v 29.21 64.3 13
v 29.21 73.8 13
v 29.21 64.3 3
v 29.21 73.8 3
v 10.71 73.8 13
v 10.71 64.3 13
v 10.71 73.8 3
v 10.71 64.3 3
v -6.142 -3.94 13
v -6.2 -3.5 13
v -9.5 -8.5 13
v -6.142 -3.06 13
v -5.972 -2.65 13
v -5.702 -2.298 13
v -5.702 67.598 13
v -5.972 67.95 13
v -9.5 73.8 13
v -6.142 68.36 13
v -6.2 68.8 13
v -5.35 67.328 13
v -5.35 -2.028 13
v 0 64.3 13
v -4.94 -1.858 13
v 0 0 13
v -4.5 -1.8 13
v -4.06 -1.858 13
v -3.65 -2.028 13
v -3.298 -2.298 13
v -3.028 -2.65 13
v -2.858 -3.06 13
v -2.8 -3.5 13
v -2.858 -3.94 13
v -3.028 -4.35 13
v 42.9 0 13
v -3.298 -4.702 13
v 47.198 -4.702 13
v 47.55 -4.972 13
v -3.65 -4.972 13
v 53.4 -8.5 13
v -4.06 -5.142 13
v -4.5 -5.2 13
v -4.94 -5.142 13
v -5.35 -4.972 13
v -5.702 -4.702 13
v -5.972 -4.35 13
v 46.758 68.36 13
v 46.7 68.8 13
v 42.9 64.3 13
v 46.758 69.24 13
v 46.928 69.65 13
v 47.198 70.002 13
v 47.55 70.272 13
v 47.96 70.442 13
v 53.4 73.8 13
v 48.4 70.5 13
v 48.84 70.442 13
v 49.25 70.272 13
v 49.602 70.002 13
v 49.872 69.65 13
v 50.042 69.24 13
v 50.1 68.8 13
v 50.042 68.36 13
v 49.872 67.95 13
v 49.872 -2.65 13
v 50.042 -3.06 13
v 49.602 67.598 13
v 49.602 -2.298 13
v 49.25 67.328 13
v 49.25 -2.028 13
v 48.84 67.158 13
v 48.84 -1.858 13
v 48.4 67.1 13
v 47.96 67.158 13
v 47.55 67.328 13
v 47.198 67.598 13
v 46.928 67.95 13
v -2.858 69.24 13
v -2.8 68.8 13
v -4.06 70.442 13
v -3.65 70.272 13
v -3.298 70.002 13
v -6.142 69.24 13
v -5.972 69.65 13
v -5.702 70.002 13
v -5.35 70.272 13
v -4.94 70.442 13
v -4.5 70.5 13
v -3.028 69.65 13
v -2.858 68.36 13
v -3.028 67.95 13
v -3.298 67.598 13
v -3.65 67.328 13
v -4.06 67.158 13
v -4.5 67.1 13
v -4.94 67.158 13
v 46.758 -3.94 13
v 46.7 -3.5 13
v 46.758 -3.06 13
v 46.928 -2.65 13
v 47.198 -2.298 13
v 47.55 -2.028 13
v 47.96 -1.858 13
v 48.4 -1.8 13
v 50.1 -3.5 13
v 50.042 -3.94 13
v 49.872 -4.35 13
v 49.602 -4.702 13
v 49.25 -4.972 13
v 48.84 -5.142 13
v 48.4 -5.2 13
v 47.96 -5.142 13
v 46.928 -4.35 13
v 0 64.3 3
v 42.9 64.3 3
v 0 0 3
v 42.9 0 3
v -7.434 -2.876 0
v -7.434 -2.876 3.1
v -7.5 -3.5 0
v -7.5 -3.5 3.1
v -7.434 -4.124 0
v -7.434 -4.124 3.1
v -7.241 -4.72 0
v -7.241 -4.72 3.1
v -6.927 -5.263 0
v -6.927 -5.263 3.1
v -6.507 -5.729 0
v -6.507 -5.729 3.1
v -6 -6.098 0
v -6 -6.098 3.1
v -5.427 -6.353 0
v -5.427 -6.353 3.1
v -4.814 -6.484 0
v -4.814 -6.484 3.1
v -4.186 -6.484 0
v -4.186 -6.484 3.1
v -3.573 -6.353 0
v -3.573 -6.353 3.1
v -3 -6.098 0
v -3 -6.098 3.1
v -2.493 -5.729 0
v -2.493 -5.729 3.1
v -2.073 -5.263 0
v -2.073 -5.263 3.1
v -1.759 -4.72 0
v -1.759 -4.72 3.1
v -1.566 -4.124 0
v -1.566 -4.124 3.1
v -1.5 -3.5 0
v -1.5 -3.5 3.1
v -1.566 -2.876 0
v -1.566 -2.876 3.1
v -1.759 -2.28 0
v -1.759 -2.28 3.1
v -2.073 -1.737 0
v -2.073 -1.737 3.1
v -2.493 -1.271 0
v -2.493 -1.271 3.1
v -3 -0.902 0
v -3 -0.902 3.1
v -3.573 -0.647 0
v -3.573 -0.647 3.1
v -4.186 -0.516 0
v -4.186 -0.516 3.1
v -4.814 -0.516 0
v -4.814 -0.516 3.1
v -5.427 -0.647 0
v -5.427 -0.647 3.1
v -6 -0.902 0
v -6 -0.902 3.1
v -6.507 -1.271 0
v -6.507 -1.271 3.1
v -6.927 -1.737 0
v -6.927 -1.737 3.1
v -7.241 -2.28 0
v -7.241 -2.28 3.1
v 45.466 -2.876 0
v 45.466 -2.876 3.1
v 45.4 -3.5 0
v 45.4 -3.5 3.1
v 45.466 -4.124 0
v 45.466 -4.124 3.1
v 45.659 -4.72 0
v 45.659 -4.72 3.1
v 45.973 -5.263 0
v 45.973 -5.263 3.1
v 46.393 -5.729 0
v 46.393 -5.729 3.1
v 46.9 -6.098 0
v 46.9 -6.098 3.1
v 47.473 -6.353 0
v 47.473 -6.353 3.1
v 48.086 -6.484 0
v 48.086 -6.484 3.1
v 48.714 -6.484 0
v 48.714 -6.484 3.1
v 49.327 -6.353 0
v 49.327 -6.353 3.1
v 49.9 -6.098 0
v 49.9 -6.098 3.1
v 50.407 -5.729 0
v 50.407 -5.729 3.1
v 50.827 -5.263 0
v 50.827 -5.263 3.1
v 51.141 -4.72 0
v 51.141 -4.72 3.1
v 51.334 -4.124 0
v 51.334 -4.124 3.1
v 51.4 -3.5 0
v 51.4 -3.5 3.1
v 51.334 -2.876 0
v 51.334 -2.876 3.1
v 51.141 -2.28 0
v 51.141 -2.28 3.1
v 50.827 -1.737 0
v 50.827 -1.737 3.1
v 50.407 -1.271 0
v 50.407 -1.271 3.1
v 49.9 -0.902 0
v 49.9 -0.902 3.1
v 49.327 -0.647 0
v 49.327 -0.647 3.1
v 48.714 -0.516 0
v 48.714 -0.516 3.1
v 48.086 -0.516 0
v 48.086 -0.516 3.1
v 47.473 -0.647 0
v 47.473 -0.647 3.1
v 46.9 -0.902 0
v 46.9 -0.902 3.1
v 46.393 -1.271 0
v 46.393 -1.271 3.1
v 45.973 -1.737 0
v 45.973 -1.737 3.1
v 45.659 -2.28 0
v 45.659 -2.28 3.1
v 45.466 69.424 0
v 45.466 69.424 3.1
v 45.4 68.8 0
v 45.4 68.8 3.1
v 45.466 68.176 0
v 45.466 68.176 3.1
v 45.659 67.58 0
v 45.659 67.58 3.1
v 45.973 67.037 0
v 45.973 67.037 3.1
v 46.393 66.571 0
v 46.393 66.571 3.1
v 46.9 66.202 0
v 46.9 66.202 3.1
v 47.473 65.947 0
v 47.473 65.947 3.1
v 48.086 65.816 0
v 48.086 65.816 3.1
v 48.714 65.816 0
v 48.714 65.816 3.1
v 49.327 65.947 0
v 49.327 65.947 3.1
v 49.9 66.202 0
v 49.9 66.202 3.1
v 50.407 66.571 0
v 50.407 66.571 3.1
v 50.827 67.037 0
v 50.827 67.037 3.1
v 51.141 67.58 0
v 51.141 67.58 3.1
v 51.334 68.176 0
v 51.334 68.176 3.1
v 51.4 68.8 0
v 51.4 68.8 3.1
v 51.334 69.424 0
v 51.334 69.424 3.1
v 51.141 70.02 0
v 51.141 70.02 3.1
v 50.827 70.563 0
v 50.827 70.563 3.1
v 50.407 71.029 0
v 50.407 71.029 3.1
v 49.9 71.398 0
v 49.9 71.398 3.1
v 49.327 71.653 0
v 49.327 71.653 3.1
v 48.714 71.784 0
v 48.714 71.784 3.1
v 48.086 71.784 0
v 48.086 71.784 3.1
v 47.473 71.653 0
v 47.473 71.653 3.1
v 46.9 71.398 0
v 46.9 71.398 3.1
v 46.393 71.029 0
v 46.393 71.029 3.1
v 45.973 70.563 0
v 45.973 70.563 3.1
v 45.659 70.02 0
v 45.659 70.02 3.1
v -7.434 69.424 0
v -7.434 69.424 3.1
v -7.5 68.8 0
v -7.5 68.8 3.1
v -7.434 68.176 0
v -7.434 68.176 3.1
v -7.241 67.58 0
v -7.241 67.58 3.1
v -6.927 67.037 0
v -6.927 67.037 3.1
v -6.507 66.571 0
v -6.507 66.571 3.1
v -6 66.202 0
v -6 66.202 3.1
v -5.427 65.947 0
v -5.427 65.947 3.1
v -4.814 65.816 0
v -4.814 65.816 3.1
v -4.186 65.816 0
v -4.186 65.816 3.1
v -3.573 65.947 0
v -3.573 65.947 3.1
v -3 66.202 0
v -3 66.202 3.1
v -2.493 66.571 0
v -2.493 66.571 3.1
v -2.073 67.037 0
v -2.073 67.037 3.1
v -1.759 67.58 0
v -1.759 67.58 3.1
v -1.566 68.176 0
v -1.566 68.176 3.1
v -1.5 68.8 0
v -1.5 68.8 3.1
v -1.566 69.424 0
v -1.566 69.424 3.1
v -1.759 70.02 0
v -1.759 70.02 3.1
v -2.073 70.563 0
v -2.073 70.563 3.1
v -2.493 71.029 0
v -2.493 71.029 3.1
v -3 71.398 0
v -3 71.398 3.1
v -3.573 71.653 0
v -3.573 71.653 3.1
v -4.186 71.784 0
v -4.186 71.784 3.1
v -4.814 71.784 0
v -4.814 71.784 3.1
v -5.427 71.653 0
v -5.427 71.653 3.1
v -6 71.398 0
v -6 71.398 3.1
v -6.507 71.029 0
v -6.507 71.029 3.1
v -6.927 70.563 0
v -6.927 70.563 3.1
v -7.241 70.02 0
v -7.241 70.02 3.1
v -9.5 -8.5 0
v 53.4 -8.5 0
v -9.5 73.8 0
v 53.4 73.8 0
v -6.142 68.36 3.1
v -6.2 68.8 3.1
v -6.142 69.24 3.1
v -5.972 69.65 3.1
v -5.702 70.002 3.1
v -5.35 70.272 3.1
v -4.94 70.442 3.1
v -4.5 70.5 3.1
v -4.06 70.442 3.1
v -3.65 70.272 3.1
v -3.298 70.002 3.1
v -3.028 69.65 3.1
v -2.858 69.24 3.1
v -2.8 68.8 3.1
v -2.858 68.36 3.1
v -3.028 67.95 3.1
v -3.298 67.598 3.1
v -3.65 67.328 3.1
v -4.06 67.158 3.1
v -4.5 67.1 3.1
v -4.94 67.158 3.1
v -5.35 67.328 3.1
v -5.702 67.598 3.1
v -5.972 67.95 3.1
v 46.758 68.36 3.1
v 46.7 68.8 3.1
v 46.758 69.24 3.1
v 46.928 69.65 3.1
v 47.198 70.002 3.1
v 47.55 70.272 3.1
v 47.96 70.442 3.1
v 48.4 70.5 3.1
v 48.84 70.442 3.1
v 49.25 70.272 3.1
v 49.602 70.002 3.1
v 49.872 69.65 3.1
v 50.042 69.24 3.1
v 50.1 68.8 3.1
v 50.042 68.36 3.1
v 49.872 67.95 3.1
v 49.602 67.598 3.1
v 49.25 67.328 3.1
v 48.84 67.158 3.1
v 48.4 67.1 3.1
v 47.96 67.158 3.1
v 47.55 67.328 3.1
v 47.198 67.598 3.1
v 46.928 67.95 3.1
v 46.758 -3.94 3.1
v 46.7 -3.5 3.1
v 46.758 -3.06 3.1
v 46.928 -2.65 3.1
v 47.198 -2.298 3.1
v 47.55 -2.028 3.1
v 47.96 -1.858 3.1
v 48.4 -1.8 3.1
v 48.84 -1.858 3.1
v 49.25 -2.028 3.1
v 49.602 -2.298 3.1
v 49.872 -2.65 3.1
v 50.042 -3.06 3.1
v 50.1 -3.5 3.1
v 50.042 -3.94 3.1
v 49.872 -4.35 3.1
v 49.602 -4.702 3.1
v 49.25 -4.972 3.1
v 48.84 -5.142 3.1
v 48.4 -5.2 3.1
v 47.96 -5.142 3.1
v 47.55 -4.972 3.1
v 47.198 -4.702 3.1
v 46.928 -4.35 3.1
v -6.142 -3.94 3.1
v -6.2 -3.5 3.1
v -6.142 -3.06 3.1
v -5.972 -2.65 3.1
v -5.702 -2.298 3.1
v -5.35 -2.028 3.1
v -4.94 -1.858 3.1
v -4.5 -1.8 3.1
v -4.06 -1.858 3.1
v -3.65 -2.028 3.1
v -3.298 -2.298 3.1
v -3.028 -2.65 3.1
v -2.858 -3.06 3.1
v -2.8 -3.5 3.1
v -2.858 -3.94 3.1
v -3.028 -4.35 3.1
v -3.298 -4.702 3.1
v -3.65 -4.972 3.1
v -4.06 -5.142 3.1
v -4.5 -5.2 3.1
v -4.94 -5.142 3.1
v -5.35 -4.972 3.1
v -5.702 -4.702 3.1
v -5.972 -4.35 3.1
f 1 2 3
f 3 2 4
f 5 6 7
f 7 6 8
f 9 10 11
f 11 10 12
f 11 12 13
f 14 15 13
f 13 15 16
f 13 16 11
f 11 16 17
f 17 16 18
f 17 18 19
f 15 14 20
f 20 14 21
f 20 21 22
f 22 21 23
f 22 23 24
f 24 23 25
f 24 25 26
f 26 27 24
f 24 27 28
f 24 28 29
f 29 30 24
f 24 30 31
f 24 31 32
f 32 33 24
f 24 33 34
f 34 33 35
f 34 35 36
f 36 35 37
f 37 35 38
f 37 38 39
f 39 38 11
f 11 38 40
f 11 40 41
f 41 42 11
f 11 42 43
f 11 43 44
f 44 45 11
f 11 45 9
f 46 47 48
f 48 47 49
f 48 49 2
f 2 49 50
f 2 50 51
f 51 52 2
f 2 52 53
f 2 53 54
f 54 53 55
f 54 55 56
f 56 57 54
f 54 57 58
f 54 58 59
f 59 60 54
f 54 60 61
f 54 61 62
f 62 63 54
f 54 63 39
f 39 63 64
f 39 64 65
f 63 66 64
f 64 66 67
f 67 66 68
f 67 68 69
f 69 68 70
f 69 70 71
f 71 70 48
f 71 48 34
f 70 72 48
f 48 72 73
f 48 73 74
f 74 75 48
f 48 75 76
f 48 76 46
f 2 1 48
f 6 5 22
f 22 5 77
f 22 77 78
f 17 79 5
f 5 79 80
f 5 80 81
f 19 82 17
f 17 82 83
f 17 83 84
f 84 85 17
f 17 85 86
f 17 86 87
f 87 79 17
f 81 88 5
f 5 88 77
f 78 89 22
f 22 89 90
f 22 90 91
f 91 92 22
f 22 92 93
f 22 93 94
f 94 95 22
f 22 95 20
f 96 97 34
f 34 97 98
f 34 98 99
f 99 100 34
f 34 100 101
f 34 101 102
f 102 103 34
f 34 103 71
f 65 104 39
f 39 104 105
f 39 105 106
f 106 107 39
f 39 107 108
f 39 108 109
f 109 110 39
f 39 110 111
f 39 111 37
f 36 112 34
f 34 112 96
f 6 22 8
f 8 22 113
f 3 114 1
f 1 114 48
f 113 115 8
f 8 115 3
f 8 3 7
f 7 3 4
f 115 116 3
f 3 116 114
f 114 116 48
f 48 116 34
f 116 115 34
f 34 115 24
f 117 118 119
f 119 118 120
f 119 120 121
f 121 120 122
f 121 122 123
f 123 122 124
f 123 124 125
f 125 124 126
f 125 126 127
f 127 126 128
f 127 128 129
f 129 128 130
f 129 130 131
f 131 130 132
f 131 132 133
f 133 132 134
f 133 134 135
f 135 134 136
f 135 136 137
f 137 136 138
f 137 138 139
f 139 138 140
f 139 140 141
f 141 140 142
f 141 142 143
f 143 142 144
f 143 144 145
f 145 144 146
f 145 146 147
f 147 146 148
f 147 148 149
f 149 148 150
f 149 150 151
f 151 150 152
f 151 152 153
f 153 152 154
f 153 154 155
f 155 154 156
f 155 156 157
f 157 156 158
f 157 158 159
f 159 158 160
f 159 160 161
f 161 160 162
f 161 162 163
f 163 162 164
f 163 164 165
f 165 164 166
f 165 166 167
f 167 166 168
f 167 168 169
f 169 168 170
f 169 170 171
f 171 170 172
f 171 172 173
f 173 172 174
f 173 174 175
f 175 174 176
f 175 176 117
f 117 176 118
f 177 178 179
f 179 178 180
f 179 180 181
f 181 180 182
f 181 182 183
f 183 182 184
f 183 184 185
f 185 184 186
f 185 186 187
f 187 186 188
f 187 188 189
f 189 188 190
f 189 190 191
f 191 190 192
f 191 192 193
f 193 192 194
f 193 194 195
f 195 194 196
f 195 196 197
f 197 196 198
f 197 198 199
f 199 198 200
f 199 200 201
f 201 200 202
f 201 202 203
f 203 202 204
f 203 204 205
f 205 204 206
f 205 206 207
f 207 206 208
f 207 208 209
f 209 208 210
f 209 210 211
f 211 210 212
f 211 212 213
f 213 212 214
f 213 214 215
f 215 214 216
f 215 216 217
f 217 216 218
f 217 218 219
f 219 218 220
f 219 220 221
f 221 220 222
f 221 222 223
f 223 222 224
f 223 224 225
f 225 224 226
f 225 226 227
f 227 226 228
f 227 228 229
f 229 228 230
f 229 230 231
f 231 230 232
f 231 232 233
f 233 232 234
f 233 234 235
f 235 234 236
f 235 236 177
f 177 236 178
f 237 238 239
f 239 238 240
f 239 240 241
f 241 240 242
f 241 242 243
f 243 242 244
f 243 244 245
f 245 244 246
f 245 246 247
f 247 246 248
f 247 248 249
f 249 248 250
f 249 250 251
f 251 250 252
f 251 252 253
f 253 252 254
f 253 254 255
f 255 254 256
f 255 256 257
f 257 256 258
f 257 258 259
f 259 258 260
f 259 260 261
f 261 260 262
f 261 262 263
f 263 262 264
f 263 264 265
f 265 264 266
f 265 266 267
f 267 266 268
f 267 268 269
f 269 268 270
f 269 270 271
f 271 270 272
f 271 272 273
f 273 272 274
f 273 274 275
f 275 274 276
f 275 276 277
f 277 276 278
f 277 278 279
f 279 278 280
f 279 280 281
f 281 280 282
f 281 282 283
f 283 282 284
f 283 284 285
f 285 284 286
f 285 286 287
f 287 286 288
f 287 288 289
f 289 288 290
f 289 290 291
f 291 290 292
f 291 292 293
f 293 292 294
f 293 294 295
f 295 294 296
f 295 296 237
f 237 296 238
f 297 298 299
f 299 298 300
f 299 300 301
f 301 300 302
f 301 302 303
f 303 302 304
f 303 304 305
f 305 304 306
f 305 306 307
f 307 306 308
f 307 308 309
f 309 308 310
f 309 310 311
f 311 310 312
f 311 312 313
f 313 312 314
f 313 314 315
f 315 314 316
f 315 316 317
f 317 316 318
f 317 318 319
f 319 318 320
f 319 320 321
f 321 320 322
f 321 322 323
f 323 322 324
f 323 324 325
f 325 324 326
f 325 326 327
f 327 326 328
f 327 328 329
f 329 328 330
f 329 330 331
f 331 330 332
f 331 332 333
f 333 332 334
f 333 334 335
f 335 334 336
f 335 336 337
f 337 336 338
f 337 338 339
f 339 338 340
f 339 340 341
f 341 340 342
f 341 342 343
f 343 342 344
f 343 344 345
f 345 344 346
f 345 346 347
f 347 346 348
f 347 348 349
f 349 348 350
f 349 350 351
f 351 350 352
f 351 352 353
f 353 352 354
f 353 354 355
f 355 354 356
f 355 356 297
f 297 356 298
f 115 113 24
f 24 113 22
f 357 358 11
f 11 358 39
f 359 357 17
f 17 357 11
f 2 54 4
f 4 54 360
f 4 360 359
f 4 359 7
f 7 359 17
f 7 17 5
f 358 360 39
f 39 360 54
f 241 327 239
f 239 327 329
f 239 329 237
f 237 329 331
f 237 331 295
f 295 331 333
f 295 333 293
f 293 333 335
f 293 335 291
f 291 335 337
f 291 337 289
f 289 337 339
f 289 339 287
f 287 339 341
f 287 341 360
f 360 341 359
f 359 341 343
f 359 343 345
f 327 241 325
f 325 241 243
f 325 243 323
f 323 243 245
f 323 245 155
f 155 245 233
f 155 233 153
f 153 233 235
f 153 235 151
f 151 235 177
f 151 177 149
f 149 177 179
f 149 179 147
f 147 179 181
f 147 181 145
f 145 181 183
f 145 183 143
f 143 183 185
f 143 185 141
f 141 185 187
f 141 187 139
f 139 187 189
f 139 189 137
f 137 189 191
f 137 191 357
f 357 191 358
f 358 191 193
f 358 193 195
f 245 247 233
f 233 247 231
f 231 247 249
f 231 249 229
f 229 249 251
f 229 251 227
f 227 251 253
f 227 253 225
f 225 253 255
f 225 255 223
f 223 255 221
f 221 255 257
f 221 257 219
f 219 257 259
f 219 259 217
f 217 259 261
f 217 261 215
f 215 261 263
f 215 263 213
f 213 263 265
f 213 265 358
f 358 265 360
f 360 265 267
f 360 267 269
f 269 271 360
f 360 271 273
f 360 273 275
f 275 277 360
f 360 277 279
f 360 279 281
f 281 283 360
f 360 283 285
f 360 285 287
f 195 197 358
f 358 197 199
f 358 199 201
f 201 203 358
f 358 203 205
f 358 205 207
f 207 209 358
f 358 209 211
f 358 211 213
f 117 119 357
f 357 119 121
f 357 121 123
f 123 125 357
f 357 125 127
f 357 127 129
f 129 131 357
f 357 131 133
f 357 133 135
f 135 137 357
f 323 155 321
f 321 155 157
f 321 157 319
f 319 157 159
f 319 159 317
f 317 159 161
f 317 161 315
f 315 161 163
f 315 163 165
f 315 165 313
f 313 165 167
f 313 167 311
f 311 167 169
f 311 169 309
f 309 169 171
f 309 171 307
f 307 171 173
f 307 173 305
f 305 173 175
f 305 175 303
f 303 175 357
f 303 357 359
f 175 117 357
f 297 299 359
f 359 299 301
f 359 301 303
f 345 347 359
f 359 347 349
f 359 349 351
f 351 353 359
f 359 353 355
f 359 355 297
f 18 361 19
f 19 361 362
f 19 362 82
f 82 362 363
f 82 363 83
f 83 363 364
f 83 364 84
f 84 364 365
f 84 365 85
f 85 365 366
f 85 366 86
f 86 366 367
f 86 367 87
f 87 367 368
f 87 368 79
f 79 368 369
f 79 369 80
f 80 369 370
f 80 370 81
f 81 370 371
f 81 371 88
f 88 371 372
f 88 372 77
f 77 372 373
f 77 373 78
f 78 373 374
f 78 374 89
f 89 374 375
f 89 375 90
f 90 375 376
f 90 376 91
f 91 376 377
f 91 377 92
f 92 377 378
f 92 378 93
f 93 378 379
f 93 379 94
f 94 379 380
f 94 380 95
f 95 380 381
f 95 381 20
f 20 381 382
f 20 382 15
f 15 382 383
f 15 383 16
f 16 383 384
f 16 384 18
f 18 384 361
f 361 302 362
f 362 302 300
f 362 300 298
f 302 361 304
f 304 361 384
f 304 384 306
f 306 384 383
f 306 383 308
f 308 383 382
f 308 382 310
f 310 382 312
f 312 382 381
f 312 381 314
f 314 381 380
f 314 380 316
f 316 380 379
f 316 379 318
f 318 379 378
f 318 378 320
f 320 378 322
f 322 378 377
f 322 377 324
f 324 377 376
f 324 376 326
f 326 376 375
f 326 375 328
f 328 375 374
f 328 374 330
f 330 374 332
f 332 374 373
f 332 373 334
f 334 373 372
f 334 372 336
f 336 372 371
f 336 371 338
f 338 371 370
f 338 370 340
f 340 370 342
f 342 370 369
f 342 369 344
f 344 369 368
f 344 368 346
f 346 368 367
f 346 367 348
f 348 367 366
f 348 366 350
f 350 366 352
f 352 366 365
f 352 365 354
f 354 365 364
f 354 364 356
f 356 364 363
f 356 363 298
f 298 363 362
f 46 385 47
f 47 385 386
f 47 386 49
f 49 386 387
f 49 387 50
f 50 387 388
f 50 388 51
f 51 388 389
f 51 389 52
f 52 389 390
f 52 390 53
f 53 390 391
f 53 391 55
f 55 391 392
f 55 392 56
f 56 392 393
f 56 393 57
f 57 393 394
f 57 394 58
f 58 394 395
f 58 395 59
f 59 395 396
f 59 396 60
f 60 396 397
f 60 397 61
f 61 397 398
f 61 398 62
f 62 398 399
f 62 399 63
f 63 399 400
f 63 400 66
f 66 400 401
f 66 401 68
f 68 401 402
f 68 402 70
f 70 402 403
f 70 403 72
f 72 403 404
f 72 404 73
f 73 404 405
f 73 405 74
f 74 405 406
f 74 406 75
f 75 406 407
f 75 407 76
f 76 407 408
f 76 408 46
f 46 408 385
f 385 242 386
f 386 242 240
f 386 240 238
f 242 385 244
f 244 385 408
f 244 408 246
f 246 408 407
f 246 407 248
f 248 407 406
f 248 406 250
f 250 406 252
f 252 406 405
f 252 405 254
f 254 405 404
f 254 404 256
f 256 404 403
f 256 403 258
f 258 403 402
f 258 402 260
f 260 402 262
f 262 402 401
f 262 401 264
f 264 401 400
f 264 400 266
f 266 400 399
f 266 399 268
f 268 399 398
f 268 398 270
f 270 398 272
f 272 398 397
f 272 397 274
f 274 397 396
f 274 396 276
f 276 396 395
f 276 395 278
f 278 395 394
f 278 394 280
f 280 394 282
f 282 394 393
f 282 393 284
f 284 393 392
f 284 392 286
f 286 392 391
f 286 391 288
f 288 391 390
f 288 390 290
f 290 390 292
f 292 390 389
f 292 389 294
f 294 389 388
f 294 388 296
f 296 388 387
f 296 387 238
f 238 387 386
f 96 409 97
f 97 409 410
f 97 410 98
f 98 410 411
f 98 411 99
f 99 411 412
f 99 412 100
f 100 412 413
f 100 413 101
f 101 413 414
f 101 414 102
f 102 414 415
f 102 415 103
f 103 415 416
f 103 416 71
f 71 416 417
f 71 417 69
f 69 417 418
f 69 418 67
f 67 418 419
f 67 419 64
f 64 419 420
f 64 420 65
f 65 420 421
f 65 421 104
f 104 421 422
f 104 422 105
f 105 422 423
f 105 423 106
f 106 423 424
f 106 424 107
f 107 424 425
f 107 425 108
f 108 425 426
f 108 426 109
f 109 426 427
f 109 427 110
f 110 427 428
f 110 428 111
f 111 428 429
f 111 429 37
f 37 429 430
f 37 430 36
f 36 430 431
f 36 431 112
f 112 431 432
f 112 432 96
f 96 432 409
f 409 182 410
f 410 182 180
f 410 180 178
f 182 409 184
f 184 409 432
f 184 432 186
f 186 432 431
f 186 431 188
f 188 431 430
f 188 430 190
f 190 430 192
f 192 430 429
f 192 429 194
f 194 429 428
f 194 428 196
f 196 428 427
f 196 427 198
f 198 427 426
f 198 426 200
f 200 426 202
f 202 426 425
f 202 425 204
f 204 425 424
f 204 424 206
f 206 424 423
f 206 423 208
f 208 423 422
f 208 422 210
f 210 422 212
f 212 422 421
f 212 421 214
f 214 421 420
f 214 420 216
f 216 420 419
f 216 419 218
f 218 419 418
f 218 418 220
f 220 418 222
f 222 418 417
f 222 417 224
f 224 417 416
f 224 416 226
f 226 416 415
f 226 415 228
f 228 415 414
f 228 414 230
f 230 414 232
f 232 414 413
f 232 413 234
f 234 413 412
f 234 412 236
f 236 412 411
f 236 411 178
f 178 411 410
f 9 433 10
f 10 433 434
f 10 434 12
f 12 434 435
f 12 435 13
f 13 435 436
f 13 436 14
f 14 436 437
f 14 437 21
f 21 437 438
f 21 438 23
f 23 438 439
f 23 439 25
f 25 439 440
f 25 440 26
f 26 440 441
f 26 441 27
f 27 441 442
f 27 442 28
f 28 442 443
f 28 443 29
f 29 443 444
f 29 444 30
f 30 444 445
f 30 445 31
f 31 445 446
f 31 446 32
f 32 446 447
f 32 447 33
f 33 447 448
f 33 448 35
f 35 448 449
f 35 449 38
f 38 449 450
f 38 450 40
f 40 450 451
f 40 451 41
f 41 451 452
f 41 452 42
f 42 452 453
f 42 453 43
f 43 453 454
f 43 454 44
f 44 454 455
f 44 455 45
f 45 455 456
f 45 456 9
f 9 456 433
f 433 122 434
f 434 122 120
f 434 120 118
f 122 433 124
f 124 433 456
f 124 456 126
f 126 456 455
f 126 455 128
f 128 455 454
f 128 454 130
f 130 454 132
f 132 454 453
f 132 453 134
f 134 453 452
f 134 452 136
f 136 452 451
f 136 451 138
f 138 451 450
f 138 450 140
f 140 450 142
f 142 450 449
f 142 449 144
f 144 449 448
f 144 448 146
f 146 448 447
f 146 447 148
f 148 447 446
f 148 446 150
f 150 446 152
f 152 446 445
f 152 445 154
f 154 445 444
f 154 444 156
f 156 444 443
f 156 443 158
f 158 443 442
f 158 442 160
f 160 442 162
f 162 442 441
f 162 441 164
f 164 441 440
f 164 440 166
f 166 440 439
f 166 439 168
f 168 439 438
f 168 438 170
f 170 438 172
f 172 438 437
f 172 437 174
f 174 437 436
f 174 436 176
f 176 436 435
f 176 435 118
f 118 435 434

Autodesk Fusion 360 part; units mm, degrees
sketch "Sketch1" plane through (0, 0, 0) normal (0, 0, 1) x (1, 0, 0) in component "Case"
  line L0 (0, 0) -> (42.9, 0)
  line L1 (42.9, 0) -> (42.9, 64.3)
  line L2 (42.9, 64.3) -> (0, 64.3)
  line L3 (0, 64.3) -> (0, 0)
  line L4 (53.4, 73.8) -> (-9.5, 73.8)
  line L5 (-9.5, 73.8) -> (-9.5, -8.5)
  line L6 (-9.5, -8.5) -> (53.4, -8.5)
  line L7 (53.4, -8.5) -> (53.4, 73.8)
  circle A0 centre (-4.5, 68.8) radius 1.7
  circle A1 centre (48.4, 68.8) radius 1.7
  circle A2 centre (48.4, -3.5) radius 1.7
  circle A3 centre (-4.5, -3.5) radius 1.7
  circle A4 centre (48.4, 68.8) radius 3
  circle A5 centre (48.4, -3.5) radius 3
  circle A6 centre (-4.5, 68.8) radius 3
  circle A7 centre (-4.5, -3.5) radius 3
  dimension "d1" = 42.9
  dimension "d2" = 64.3
  dimension "d3" = 62.9
  dimension "d4" = 82.3
  dimension "d5" = 9.5
  dimension "d6" = 9.5
  dimension "d7" = 3.4
  dimension "d8" = 3.4
  dimension "d9" = 3.4
  dimension "d10" = 3.4
  dimension "d11" = 5
  dimension "d12" = 5
  dimension "d13" = 5
  dimension "d14" = 5
  dimension "d15" = 5
  dimension "d16" = 5
  dimension "d17" = 5
  dimension "d18" = 5
  dimension "d19" = 1.3
  dimension "d20" = 1.3
  dimension "d21" = 1.3
  dimension "d22" = 1.3
extrude "Extrude1" add sketch "Sketch1" along normal blind 9.9 from surface at 3.1 contours A4 | A5 | A6 | A7 makes body 1 at (51.3963, -3.6495, 9.7) makes body 2 at (50.9599, 70.3643, 9.7) makes body 3 at (-1.5037, -3.6495, 9.7) makes body 4 at (-7.0599, 67.2357, 9.7) in component "Case"
extrude "Extrude2" add sketch "Sketch1" along normal blind 13 contours L4 L5 L6 L7 bodies 1 2 3 4 in component "Case"
extrude "Extrude3" add sketch "Sketch1" along normal blind 3 contours L0 L1 L2 L3 bodies 1 in component "Case"
sketch "Sketch2" plane through (0, 0, 13) normal (0, 0, 1) x (-1, 0, 0) in component "Case"
  circle A0 centre (-48.4, 3.5) radius 1.7
  circle A1 centre (4.5, -68.8) radius 1.7
  line L0 (0, 0) -> (0, -64.3)
  line L1 (0, -64.3) -> (-42.9, -64.3)
  line L2 (-42.9, -64.3) -> (-42.9, 0)
  line L3 (-42.9, 0) -> (0, 0)
  line L4 (-53.4, 8.5) -> (-53.4, -73.8)
  line L5 (-53.4, -73.8) -> (9.5, -73.8)
  line L6 (9.5, -73.8) -> (9.5, 8.5)
  line L7 (9.5, 8.5) -> (-53.4, 8.5)
  circle A2 centre (-48.4, -68.8) radius 1.7
  circle A3 centre (4.5, 3.5) radius 1.7
  line L8 (0, -64.3) -> (0, 0)
  line L9 (0, 0) -> (-42.9, 0)
  line L10 (-42.9, 0) -> (-42.9, -64.3)
  line L11 (-42.9, -64.3) -> (0, -64.3)
  line L12 (-10.71, -73.8) -> (-29.21, -73.8)
  line L13 (-29.21, -73.8) -> (-29.21, -64.3)
  line L14 (-29.21, -64.3) -> (-10.71, -64.3)
  line L15 (-10.71, -64.3) -> (-10.71, -73.8)
  dimension "d31" = 10.71
  dimension "d32" = 13.69
extrude "Extrude4" cut sketch "Sketch2" against normal blind 10 contours L1 L5 L11 L12 L13 L14 L15 bodies 1 in component "Case"
component "Case" placed x (1, 0, 0) y (0, 1, 0) z (0, 0, 1) at (0, 0, 0)
equation "d31 = 14.46 mm - 3.75 mm"
equation "d32 = 14.46 mm - 0.77 mm"
